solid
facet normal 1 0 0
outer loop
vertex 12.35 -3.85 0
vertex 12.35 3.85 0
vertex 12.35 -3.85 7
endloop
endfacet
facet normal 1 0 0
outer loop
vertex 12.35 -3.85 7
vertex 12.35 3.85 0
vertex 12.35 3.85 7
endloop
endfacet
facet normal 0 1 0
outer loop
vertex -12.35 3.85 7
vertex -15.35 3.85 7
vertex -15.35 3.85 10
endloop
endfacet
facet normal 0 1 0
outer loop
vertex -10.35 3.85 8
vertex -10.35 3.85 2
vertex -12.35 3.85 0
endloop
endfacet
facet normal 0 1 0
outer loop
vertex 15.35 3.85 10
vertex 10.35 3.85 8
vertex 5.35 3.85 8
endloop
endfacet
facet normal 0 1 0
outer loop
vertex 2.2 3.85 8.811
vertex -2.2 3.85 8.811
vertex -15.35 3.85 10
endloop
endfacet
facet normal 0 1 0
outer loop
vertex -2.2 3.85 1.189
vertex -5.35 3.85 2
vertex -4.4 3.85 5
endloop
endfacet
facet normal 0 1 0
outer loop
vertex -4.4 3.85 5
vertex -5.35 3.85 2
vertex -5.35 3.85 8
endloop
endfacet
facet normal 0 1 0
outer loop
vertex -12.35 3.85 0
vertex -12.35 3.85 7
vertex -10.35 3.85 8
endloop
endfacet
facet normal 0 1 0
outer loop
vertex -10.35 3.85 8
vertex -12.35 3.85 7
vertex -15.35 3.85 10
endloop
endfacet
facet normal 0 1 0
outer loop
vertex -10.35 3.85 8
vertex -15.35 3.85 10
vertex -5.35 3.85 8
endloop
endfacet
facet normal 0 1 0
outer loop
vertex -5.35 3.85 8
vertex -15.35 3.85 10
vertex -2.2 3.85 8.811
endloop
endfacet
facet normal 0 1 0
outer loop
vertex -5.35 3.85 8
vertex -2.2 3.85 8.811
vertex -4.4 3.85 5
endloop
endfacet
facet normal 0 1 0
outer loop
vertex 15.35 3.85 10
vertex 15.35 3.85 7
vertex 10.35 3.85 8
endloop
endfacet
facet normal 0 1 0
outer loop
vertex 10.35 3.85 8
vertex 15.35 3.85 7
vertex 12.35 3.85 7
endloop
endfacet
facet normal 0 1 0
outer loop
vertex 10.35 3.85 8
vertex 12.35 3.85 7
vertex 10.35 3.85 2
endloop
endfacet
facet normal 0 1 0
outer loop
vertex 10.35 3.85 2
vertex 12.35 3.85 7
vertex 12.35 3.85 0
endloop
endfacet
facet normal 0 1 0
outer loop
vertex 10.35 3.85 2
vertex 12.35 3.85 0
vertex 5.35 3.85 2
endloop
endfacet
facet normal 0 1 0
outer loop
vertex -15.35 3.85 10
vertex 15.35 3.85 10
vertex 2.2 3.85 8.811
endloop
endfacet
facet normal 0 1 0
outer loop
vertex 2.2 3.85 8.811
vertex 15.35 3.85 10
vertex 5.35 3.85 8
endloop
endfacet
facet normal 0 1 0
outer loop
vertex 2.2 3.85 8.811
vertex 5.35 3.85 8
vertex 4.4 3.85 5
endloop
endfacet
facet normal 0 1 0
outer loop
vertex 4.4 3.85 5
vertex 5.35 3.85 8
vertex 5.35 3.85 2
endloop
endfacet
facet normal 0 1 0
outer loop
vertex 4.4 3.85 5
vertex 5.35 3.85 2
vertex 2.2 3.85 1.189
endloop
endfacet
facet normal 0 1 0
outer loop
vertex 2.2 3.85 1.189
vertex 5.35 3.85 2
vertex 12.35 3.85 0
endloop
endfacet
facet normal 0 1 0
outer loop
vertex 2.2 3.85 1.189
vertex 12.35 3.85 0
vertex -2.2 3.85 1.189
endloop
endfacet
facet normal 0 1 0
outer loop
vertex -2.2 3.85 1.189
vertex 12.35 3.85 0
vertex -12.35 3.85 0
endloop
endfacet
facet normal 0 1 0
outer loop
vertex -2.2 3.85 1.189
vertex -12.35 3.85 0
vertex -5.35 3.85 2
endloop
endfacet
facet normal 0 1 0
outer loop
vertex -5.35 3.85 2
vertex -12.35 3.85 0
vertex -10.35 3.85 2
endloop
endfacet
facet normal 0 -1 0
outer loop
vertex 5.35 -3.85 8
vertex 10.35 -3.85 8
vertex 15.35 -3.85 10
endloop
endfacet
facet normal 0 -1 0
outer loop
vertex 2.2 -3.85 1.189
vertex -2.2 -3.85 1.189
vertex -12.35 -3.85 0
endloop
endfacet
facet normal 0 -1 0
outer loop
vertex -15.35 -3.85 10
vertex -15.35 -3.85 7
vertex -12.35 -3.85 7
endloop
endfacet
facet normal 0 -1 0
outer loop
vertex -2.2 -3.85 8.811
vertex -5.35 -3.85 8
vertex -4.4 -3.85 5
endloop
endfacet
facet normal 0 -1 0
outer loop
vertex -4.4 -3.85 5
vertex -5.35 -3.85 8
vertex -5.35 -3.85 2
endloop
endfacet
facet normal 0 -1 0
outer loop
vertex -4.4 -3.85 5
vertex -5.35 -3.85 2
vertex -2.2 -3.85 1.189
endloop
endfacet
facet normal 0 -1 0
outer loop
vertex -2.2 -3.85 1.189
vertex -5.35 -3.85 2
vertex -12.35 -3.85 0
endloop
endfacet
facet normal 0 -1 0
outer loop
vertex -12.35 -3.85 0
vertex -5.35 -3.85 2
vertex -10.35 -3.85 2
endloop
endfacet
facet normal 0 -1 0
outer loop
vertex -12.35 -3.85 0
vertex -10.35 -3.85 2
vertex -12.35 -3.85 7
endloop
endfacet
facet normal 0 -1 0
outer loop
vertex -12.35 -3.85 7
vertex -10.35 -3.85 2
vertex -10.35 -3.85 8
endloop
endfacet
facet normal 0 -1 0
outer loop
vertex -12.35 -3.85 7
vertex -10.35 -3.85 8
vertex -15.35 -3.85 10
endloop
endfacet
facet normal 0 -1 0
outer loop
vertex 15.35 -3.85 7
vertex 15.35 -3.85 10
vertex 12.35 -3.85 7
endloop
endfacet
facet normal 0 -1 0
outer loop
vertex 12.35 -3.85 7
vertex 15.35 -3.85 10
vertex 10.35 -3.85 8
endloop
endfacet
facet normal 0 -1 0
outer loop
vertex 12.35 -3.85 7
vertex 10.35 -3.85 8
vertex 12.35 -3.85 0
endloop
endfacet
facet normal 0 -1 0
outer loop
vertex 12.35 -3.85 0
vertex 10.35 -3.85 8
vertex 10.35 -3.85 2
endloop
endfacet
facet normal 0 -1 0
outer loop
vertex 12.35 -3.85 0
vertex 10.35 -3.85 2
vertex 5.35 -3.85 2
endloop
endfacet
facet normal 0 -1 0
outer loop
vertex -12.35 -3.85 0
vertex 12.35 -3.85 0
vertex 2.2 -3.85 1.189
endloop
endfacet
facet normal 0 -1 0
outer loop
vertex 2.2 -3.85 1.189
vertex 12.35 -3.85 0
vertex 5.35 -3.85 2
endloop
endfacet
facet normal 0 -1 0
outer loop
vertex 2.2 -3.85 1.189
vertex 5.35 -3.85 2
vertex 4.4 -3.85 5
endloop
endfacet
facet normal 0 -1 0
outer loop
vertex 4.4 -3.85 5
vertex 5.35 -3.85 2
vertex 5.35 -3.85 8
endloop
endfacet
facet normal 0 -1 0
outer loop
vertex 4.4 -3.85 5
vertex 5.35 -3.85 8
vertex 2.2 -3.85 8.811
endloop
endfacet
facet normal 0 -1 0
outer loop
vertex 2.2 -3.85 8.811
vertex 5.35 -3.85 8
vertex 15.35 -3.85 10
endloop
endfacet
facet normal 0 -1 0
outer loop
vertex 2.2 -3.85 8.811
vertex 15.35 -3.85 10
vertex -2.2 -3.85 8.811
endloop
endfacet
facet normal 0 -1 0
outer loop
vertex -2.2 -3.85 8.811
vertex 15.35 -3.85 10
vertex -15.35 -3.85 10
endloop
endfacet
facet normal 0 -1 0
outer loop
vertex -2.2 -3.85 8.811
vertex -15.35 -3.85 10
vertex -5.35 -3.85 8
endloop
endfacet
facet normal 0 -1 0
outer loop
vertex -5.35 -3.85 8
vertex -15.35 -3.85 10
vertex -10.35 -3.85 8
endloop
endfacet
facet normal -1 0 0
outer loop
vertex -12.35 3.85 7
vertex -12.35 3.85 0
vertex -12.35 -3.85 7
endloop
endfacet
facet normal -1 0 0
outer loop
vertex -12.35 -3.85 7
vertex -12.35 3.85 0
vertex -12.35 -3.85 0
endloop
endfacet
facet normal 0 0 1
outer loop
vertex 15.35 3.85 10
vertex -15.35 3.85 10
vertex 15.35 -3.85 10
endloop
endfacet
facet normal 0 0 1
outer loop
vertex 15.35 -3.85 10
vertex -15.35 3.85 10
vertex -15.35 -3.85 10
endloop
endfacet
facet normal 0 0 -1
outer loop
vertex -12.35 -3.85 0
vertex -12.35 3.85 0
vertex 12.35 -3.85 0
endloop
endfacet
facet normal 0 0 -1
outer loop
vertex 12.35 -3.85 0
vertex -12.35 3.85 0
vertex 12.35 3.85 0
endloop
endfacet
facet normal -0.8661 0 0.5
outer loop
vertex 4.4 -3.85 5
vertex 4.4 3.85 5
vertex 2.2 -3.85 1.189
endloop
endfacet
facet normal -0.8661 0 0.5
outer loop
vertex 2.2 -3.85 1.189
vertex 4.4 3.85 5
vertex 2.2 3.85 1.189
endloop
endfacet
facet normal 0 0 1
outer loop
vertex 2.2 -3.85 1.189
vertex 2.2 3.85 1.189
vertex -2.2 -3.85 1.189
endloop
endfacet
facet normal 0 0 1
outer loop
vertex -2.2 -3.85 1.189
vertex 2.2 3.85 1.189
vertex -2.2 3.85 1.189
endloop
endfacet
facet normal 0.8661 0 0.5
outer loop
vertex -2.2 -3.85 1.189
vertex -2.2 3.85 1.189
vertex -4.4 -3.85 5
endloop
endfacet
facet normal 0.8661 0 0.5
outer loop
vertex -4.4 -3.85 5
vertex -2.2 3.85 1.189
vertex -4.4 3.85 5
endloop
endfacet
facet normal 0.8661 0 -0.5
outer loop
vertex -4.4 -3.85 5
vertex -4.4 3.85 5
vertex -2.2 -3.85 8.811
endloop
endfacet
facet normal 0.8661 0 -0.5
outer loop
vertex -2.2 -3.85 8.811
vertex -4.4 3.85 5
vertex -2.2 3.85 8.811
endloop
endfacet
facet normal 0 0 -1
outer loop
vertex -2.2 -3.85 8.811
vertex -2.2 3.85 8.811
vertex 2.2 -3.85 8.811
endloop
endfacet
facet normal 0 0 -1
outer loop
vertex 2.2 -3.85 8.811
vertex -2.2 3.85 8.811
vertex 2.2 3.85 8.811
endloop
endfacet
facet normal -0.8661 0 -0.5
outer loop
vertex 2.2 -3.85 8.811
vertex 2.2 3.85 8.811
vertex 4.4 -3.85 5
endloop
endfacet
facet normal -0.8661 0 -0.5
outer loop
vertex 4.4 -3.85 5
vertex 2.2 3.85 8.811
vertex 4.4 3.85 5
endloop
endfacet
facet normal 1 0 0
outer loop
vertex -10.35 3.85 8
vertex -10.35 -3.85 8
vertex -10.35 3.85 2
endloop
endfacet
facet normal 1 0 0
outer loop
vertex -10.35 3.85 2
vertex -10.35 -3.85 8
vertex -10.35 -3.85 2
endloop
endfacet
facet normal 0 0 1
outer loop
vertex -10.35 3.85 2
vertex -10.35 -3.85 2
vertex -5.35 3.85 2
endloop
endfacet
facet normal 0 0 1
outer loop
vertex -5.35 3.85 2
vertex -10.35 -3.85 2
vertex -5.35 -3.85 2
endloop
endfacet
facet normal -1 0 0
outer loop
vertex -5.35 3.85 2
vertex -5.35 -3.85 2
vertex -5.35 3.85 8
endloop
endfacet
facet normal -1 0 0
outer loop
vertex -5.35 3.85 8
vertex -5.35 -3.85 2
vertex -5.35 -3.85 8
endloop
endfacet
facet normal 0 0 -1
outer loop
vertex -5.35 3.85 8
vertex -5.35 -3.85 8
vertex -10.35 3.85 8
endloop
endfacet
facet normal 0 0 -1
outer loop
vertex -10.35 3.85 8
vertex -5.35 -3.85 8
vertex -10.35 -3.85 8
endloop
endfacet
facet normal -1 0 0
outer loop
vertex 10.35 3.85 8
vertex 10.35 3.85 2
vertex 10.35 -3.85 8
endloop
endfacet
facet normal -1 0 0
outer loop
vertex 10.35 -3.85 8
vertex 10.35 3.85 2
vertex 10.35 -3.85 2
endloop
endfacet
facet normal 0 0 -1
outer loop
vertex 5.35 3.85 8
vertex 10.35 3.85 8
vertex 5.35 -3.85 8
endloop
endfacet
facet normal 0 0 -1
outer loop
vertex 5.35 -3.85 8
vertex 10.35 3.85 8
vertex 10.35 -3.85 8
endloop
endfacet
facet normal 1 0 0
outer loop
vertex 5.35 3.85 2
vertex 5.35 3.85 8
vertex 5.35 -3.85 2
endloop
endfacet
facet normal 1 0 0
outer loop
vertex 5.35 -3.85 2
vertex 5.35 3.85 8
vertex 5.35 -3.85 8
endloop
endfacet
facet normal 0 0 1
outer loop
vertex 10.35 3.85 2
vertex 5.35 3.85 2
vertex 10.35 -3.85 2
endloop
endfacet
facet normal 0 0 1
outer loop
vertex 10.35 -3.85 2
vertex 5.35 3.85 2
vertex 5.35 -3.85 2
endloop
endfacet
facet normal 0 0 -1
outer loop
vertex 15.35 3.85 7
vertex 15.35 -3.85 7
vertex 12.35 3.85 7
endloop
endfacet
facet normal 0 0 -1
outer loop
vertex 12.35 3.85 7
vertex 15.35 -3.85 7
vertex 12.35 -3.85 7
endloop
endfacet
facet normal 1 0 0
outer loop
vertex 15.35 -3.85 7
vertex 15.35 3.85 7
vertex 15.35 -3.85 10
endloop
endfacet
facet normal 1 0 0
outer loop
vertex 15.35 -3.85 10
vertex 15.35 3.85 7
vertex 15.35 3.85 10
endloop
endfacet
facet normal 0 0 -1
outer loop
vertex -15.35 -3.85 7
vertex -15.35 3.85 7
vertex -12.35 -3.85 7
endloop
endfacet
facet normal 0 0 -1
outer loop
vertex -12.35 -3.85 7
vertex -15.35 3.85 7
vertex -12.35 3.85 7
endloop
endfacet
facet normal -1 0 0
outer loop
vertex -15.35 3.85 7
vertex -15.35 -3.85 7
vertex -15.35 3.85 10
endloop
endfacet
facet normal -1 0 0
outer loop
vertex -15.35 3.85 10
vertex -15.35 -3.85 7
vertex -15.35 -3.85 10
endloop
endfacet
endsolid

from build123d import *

# Parameters (mm, degrees)
SKETCH1_W           = 24.7
SKETCH1_H           = 7.7
BOSS_EXTRUDE1_DEPTH = 10
CUT_EXTRUDE1_DEPTH  = 10
SKETCH3_W           = 5
SKETCH3_H           = 6
CUT_EXTRUDE2_DEPTH  = 10
SKETCH4_W           = 3
SKETCH4_H           = 7.7
BOSS_EXTRUDE2_DEPTH = 3


with BuildPart() as part:
    # Sketch1 → Boss-Extrude1 (new body)
    with BuildSketch(Plane.XY):
        Rectangle(SKETCH1_W, SKETCH1_H)
    extrude(amount=BOSS_EXTRUDE1_DEPTH)

    # Sketch2 → Cut-Extrude1 (cut)
    with BuildSketch(Plane.XZ.offset(3.85)):
        Polygon((4.4, 5), (2.2, 8.810511777), (-2.2, 8.810511777), (-4.4, 5), (-2.2, 1.189488223), (2.2, 1.189488223), align=None)
    extrude(amount=-CUT_EXTRUDE1_DEPTH, mode=Mode.SUBTRACT)

    # Sketch3 → Cut-Extrude2 (cut)
    with BuildSketch(Plane(origin=(0, 3.85, 0), x_dir=(1, 0, 0), z_dir=(0, 1, 0))):
        with Locations((-7.85, -5)):
            Rectangle(SKETCH3_W, SKETCH3_H)
    cut_extrude2 = extrude(amount=-CUT_EXTRUDE2_DEPTH, mode=Mode.SUBTRACT)

    # Mirror1: Cut-Extrude2 across plane
    add(cut_extrude2.mirror(Plane(origin=(0, 0, 0), x_dir=(0, 0, 1), z_dir=(1, 0, 0))), mode=Mode.SUBTRACT)

    # Sketch4 → Boss-Extrude2 (add)
    with BuildSketch(Plane(origin=(12.35, 0, 0), x_dir=(0, 0, -1), z_dir=(1, 0, 0))):
        with Locations((-8.5, 0)):
            Rectangle(SKETCH4_W, SKETCH4_H)
    boss_extrude2 = extrude(amount=BOSS_EXTRUDE2_DEPTH)

    # Mirror2: Boss-Extrude2 across plane
    add(boss_extrude2.mirror(Plane(origin=(0, 0, 0), x_dir=(0, 0, 1), z_dir=(1, 0, 0))))


solid = part.part
